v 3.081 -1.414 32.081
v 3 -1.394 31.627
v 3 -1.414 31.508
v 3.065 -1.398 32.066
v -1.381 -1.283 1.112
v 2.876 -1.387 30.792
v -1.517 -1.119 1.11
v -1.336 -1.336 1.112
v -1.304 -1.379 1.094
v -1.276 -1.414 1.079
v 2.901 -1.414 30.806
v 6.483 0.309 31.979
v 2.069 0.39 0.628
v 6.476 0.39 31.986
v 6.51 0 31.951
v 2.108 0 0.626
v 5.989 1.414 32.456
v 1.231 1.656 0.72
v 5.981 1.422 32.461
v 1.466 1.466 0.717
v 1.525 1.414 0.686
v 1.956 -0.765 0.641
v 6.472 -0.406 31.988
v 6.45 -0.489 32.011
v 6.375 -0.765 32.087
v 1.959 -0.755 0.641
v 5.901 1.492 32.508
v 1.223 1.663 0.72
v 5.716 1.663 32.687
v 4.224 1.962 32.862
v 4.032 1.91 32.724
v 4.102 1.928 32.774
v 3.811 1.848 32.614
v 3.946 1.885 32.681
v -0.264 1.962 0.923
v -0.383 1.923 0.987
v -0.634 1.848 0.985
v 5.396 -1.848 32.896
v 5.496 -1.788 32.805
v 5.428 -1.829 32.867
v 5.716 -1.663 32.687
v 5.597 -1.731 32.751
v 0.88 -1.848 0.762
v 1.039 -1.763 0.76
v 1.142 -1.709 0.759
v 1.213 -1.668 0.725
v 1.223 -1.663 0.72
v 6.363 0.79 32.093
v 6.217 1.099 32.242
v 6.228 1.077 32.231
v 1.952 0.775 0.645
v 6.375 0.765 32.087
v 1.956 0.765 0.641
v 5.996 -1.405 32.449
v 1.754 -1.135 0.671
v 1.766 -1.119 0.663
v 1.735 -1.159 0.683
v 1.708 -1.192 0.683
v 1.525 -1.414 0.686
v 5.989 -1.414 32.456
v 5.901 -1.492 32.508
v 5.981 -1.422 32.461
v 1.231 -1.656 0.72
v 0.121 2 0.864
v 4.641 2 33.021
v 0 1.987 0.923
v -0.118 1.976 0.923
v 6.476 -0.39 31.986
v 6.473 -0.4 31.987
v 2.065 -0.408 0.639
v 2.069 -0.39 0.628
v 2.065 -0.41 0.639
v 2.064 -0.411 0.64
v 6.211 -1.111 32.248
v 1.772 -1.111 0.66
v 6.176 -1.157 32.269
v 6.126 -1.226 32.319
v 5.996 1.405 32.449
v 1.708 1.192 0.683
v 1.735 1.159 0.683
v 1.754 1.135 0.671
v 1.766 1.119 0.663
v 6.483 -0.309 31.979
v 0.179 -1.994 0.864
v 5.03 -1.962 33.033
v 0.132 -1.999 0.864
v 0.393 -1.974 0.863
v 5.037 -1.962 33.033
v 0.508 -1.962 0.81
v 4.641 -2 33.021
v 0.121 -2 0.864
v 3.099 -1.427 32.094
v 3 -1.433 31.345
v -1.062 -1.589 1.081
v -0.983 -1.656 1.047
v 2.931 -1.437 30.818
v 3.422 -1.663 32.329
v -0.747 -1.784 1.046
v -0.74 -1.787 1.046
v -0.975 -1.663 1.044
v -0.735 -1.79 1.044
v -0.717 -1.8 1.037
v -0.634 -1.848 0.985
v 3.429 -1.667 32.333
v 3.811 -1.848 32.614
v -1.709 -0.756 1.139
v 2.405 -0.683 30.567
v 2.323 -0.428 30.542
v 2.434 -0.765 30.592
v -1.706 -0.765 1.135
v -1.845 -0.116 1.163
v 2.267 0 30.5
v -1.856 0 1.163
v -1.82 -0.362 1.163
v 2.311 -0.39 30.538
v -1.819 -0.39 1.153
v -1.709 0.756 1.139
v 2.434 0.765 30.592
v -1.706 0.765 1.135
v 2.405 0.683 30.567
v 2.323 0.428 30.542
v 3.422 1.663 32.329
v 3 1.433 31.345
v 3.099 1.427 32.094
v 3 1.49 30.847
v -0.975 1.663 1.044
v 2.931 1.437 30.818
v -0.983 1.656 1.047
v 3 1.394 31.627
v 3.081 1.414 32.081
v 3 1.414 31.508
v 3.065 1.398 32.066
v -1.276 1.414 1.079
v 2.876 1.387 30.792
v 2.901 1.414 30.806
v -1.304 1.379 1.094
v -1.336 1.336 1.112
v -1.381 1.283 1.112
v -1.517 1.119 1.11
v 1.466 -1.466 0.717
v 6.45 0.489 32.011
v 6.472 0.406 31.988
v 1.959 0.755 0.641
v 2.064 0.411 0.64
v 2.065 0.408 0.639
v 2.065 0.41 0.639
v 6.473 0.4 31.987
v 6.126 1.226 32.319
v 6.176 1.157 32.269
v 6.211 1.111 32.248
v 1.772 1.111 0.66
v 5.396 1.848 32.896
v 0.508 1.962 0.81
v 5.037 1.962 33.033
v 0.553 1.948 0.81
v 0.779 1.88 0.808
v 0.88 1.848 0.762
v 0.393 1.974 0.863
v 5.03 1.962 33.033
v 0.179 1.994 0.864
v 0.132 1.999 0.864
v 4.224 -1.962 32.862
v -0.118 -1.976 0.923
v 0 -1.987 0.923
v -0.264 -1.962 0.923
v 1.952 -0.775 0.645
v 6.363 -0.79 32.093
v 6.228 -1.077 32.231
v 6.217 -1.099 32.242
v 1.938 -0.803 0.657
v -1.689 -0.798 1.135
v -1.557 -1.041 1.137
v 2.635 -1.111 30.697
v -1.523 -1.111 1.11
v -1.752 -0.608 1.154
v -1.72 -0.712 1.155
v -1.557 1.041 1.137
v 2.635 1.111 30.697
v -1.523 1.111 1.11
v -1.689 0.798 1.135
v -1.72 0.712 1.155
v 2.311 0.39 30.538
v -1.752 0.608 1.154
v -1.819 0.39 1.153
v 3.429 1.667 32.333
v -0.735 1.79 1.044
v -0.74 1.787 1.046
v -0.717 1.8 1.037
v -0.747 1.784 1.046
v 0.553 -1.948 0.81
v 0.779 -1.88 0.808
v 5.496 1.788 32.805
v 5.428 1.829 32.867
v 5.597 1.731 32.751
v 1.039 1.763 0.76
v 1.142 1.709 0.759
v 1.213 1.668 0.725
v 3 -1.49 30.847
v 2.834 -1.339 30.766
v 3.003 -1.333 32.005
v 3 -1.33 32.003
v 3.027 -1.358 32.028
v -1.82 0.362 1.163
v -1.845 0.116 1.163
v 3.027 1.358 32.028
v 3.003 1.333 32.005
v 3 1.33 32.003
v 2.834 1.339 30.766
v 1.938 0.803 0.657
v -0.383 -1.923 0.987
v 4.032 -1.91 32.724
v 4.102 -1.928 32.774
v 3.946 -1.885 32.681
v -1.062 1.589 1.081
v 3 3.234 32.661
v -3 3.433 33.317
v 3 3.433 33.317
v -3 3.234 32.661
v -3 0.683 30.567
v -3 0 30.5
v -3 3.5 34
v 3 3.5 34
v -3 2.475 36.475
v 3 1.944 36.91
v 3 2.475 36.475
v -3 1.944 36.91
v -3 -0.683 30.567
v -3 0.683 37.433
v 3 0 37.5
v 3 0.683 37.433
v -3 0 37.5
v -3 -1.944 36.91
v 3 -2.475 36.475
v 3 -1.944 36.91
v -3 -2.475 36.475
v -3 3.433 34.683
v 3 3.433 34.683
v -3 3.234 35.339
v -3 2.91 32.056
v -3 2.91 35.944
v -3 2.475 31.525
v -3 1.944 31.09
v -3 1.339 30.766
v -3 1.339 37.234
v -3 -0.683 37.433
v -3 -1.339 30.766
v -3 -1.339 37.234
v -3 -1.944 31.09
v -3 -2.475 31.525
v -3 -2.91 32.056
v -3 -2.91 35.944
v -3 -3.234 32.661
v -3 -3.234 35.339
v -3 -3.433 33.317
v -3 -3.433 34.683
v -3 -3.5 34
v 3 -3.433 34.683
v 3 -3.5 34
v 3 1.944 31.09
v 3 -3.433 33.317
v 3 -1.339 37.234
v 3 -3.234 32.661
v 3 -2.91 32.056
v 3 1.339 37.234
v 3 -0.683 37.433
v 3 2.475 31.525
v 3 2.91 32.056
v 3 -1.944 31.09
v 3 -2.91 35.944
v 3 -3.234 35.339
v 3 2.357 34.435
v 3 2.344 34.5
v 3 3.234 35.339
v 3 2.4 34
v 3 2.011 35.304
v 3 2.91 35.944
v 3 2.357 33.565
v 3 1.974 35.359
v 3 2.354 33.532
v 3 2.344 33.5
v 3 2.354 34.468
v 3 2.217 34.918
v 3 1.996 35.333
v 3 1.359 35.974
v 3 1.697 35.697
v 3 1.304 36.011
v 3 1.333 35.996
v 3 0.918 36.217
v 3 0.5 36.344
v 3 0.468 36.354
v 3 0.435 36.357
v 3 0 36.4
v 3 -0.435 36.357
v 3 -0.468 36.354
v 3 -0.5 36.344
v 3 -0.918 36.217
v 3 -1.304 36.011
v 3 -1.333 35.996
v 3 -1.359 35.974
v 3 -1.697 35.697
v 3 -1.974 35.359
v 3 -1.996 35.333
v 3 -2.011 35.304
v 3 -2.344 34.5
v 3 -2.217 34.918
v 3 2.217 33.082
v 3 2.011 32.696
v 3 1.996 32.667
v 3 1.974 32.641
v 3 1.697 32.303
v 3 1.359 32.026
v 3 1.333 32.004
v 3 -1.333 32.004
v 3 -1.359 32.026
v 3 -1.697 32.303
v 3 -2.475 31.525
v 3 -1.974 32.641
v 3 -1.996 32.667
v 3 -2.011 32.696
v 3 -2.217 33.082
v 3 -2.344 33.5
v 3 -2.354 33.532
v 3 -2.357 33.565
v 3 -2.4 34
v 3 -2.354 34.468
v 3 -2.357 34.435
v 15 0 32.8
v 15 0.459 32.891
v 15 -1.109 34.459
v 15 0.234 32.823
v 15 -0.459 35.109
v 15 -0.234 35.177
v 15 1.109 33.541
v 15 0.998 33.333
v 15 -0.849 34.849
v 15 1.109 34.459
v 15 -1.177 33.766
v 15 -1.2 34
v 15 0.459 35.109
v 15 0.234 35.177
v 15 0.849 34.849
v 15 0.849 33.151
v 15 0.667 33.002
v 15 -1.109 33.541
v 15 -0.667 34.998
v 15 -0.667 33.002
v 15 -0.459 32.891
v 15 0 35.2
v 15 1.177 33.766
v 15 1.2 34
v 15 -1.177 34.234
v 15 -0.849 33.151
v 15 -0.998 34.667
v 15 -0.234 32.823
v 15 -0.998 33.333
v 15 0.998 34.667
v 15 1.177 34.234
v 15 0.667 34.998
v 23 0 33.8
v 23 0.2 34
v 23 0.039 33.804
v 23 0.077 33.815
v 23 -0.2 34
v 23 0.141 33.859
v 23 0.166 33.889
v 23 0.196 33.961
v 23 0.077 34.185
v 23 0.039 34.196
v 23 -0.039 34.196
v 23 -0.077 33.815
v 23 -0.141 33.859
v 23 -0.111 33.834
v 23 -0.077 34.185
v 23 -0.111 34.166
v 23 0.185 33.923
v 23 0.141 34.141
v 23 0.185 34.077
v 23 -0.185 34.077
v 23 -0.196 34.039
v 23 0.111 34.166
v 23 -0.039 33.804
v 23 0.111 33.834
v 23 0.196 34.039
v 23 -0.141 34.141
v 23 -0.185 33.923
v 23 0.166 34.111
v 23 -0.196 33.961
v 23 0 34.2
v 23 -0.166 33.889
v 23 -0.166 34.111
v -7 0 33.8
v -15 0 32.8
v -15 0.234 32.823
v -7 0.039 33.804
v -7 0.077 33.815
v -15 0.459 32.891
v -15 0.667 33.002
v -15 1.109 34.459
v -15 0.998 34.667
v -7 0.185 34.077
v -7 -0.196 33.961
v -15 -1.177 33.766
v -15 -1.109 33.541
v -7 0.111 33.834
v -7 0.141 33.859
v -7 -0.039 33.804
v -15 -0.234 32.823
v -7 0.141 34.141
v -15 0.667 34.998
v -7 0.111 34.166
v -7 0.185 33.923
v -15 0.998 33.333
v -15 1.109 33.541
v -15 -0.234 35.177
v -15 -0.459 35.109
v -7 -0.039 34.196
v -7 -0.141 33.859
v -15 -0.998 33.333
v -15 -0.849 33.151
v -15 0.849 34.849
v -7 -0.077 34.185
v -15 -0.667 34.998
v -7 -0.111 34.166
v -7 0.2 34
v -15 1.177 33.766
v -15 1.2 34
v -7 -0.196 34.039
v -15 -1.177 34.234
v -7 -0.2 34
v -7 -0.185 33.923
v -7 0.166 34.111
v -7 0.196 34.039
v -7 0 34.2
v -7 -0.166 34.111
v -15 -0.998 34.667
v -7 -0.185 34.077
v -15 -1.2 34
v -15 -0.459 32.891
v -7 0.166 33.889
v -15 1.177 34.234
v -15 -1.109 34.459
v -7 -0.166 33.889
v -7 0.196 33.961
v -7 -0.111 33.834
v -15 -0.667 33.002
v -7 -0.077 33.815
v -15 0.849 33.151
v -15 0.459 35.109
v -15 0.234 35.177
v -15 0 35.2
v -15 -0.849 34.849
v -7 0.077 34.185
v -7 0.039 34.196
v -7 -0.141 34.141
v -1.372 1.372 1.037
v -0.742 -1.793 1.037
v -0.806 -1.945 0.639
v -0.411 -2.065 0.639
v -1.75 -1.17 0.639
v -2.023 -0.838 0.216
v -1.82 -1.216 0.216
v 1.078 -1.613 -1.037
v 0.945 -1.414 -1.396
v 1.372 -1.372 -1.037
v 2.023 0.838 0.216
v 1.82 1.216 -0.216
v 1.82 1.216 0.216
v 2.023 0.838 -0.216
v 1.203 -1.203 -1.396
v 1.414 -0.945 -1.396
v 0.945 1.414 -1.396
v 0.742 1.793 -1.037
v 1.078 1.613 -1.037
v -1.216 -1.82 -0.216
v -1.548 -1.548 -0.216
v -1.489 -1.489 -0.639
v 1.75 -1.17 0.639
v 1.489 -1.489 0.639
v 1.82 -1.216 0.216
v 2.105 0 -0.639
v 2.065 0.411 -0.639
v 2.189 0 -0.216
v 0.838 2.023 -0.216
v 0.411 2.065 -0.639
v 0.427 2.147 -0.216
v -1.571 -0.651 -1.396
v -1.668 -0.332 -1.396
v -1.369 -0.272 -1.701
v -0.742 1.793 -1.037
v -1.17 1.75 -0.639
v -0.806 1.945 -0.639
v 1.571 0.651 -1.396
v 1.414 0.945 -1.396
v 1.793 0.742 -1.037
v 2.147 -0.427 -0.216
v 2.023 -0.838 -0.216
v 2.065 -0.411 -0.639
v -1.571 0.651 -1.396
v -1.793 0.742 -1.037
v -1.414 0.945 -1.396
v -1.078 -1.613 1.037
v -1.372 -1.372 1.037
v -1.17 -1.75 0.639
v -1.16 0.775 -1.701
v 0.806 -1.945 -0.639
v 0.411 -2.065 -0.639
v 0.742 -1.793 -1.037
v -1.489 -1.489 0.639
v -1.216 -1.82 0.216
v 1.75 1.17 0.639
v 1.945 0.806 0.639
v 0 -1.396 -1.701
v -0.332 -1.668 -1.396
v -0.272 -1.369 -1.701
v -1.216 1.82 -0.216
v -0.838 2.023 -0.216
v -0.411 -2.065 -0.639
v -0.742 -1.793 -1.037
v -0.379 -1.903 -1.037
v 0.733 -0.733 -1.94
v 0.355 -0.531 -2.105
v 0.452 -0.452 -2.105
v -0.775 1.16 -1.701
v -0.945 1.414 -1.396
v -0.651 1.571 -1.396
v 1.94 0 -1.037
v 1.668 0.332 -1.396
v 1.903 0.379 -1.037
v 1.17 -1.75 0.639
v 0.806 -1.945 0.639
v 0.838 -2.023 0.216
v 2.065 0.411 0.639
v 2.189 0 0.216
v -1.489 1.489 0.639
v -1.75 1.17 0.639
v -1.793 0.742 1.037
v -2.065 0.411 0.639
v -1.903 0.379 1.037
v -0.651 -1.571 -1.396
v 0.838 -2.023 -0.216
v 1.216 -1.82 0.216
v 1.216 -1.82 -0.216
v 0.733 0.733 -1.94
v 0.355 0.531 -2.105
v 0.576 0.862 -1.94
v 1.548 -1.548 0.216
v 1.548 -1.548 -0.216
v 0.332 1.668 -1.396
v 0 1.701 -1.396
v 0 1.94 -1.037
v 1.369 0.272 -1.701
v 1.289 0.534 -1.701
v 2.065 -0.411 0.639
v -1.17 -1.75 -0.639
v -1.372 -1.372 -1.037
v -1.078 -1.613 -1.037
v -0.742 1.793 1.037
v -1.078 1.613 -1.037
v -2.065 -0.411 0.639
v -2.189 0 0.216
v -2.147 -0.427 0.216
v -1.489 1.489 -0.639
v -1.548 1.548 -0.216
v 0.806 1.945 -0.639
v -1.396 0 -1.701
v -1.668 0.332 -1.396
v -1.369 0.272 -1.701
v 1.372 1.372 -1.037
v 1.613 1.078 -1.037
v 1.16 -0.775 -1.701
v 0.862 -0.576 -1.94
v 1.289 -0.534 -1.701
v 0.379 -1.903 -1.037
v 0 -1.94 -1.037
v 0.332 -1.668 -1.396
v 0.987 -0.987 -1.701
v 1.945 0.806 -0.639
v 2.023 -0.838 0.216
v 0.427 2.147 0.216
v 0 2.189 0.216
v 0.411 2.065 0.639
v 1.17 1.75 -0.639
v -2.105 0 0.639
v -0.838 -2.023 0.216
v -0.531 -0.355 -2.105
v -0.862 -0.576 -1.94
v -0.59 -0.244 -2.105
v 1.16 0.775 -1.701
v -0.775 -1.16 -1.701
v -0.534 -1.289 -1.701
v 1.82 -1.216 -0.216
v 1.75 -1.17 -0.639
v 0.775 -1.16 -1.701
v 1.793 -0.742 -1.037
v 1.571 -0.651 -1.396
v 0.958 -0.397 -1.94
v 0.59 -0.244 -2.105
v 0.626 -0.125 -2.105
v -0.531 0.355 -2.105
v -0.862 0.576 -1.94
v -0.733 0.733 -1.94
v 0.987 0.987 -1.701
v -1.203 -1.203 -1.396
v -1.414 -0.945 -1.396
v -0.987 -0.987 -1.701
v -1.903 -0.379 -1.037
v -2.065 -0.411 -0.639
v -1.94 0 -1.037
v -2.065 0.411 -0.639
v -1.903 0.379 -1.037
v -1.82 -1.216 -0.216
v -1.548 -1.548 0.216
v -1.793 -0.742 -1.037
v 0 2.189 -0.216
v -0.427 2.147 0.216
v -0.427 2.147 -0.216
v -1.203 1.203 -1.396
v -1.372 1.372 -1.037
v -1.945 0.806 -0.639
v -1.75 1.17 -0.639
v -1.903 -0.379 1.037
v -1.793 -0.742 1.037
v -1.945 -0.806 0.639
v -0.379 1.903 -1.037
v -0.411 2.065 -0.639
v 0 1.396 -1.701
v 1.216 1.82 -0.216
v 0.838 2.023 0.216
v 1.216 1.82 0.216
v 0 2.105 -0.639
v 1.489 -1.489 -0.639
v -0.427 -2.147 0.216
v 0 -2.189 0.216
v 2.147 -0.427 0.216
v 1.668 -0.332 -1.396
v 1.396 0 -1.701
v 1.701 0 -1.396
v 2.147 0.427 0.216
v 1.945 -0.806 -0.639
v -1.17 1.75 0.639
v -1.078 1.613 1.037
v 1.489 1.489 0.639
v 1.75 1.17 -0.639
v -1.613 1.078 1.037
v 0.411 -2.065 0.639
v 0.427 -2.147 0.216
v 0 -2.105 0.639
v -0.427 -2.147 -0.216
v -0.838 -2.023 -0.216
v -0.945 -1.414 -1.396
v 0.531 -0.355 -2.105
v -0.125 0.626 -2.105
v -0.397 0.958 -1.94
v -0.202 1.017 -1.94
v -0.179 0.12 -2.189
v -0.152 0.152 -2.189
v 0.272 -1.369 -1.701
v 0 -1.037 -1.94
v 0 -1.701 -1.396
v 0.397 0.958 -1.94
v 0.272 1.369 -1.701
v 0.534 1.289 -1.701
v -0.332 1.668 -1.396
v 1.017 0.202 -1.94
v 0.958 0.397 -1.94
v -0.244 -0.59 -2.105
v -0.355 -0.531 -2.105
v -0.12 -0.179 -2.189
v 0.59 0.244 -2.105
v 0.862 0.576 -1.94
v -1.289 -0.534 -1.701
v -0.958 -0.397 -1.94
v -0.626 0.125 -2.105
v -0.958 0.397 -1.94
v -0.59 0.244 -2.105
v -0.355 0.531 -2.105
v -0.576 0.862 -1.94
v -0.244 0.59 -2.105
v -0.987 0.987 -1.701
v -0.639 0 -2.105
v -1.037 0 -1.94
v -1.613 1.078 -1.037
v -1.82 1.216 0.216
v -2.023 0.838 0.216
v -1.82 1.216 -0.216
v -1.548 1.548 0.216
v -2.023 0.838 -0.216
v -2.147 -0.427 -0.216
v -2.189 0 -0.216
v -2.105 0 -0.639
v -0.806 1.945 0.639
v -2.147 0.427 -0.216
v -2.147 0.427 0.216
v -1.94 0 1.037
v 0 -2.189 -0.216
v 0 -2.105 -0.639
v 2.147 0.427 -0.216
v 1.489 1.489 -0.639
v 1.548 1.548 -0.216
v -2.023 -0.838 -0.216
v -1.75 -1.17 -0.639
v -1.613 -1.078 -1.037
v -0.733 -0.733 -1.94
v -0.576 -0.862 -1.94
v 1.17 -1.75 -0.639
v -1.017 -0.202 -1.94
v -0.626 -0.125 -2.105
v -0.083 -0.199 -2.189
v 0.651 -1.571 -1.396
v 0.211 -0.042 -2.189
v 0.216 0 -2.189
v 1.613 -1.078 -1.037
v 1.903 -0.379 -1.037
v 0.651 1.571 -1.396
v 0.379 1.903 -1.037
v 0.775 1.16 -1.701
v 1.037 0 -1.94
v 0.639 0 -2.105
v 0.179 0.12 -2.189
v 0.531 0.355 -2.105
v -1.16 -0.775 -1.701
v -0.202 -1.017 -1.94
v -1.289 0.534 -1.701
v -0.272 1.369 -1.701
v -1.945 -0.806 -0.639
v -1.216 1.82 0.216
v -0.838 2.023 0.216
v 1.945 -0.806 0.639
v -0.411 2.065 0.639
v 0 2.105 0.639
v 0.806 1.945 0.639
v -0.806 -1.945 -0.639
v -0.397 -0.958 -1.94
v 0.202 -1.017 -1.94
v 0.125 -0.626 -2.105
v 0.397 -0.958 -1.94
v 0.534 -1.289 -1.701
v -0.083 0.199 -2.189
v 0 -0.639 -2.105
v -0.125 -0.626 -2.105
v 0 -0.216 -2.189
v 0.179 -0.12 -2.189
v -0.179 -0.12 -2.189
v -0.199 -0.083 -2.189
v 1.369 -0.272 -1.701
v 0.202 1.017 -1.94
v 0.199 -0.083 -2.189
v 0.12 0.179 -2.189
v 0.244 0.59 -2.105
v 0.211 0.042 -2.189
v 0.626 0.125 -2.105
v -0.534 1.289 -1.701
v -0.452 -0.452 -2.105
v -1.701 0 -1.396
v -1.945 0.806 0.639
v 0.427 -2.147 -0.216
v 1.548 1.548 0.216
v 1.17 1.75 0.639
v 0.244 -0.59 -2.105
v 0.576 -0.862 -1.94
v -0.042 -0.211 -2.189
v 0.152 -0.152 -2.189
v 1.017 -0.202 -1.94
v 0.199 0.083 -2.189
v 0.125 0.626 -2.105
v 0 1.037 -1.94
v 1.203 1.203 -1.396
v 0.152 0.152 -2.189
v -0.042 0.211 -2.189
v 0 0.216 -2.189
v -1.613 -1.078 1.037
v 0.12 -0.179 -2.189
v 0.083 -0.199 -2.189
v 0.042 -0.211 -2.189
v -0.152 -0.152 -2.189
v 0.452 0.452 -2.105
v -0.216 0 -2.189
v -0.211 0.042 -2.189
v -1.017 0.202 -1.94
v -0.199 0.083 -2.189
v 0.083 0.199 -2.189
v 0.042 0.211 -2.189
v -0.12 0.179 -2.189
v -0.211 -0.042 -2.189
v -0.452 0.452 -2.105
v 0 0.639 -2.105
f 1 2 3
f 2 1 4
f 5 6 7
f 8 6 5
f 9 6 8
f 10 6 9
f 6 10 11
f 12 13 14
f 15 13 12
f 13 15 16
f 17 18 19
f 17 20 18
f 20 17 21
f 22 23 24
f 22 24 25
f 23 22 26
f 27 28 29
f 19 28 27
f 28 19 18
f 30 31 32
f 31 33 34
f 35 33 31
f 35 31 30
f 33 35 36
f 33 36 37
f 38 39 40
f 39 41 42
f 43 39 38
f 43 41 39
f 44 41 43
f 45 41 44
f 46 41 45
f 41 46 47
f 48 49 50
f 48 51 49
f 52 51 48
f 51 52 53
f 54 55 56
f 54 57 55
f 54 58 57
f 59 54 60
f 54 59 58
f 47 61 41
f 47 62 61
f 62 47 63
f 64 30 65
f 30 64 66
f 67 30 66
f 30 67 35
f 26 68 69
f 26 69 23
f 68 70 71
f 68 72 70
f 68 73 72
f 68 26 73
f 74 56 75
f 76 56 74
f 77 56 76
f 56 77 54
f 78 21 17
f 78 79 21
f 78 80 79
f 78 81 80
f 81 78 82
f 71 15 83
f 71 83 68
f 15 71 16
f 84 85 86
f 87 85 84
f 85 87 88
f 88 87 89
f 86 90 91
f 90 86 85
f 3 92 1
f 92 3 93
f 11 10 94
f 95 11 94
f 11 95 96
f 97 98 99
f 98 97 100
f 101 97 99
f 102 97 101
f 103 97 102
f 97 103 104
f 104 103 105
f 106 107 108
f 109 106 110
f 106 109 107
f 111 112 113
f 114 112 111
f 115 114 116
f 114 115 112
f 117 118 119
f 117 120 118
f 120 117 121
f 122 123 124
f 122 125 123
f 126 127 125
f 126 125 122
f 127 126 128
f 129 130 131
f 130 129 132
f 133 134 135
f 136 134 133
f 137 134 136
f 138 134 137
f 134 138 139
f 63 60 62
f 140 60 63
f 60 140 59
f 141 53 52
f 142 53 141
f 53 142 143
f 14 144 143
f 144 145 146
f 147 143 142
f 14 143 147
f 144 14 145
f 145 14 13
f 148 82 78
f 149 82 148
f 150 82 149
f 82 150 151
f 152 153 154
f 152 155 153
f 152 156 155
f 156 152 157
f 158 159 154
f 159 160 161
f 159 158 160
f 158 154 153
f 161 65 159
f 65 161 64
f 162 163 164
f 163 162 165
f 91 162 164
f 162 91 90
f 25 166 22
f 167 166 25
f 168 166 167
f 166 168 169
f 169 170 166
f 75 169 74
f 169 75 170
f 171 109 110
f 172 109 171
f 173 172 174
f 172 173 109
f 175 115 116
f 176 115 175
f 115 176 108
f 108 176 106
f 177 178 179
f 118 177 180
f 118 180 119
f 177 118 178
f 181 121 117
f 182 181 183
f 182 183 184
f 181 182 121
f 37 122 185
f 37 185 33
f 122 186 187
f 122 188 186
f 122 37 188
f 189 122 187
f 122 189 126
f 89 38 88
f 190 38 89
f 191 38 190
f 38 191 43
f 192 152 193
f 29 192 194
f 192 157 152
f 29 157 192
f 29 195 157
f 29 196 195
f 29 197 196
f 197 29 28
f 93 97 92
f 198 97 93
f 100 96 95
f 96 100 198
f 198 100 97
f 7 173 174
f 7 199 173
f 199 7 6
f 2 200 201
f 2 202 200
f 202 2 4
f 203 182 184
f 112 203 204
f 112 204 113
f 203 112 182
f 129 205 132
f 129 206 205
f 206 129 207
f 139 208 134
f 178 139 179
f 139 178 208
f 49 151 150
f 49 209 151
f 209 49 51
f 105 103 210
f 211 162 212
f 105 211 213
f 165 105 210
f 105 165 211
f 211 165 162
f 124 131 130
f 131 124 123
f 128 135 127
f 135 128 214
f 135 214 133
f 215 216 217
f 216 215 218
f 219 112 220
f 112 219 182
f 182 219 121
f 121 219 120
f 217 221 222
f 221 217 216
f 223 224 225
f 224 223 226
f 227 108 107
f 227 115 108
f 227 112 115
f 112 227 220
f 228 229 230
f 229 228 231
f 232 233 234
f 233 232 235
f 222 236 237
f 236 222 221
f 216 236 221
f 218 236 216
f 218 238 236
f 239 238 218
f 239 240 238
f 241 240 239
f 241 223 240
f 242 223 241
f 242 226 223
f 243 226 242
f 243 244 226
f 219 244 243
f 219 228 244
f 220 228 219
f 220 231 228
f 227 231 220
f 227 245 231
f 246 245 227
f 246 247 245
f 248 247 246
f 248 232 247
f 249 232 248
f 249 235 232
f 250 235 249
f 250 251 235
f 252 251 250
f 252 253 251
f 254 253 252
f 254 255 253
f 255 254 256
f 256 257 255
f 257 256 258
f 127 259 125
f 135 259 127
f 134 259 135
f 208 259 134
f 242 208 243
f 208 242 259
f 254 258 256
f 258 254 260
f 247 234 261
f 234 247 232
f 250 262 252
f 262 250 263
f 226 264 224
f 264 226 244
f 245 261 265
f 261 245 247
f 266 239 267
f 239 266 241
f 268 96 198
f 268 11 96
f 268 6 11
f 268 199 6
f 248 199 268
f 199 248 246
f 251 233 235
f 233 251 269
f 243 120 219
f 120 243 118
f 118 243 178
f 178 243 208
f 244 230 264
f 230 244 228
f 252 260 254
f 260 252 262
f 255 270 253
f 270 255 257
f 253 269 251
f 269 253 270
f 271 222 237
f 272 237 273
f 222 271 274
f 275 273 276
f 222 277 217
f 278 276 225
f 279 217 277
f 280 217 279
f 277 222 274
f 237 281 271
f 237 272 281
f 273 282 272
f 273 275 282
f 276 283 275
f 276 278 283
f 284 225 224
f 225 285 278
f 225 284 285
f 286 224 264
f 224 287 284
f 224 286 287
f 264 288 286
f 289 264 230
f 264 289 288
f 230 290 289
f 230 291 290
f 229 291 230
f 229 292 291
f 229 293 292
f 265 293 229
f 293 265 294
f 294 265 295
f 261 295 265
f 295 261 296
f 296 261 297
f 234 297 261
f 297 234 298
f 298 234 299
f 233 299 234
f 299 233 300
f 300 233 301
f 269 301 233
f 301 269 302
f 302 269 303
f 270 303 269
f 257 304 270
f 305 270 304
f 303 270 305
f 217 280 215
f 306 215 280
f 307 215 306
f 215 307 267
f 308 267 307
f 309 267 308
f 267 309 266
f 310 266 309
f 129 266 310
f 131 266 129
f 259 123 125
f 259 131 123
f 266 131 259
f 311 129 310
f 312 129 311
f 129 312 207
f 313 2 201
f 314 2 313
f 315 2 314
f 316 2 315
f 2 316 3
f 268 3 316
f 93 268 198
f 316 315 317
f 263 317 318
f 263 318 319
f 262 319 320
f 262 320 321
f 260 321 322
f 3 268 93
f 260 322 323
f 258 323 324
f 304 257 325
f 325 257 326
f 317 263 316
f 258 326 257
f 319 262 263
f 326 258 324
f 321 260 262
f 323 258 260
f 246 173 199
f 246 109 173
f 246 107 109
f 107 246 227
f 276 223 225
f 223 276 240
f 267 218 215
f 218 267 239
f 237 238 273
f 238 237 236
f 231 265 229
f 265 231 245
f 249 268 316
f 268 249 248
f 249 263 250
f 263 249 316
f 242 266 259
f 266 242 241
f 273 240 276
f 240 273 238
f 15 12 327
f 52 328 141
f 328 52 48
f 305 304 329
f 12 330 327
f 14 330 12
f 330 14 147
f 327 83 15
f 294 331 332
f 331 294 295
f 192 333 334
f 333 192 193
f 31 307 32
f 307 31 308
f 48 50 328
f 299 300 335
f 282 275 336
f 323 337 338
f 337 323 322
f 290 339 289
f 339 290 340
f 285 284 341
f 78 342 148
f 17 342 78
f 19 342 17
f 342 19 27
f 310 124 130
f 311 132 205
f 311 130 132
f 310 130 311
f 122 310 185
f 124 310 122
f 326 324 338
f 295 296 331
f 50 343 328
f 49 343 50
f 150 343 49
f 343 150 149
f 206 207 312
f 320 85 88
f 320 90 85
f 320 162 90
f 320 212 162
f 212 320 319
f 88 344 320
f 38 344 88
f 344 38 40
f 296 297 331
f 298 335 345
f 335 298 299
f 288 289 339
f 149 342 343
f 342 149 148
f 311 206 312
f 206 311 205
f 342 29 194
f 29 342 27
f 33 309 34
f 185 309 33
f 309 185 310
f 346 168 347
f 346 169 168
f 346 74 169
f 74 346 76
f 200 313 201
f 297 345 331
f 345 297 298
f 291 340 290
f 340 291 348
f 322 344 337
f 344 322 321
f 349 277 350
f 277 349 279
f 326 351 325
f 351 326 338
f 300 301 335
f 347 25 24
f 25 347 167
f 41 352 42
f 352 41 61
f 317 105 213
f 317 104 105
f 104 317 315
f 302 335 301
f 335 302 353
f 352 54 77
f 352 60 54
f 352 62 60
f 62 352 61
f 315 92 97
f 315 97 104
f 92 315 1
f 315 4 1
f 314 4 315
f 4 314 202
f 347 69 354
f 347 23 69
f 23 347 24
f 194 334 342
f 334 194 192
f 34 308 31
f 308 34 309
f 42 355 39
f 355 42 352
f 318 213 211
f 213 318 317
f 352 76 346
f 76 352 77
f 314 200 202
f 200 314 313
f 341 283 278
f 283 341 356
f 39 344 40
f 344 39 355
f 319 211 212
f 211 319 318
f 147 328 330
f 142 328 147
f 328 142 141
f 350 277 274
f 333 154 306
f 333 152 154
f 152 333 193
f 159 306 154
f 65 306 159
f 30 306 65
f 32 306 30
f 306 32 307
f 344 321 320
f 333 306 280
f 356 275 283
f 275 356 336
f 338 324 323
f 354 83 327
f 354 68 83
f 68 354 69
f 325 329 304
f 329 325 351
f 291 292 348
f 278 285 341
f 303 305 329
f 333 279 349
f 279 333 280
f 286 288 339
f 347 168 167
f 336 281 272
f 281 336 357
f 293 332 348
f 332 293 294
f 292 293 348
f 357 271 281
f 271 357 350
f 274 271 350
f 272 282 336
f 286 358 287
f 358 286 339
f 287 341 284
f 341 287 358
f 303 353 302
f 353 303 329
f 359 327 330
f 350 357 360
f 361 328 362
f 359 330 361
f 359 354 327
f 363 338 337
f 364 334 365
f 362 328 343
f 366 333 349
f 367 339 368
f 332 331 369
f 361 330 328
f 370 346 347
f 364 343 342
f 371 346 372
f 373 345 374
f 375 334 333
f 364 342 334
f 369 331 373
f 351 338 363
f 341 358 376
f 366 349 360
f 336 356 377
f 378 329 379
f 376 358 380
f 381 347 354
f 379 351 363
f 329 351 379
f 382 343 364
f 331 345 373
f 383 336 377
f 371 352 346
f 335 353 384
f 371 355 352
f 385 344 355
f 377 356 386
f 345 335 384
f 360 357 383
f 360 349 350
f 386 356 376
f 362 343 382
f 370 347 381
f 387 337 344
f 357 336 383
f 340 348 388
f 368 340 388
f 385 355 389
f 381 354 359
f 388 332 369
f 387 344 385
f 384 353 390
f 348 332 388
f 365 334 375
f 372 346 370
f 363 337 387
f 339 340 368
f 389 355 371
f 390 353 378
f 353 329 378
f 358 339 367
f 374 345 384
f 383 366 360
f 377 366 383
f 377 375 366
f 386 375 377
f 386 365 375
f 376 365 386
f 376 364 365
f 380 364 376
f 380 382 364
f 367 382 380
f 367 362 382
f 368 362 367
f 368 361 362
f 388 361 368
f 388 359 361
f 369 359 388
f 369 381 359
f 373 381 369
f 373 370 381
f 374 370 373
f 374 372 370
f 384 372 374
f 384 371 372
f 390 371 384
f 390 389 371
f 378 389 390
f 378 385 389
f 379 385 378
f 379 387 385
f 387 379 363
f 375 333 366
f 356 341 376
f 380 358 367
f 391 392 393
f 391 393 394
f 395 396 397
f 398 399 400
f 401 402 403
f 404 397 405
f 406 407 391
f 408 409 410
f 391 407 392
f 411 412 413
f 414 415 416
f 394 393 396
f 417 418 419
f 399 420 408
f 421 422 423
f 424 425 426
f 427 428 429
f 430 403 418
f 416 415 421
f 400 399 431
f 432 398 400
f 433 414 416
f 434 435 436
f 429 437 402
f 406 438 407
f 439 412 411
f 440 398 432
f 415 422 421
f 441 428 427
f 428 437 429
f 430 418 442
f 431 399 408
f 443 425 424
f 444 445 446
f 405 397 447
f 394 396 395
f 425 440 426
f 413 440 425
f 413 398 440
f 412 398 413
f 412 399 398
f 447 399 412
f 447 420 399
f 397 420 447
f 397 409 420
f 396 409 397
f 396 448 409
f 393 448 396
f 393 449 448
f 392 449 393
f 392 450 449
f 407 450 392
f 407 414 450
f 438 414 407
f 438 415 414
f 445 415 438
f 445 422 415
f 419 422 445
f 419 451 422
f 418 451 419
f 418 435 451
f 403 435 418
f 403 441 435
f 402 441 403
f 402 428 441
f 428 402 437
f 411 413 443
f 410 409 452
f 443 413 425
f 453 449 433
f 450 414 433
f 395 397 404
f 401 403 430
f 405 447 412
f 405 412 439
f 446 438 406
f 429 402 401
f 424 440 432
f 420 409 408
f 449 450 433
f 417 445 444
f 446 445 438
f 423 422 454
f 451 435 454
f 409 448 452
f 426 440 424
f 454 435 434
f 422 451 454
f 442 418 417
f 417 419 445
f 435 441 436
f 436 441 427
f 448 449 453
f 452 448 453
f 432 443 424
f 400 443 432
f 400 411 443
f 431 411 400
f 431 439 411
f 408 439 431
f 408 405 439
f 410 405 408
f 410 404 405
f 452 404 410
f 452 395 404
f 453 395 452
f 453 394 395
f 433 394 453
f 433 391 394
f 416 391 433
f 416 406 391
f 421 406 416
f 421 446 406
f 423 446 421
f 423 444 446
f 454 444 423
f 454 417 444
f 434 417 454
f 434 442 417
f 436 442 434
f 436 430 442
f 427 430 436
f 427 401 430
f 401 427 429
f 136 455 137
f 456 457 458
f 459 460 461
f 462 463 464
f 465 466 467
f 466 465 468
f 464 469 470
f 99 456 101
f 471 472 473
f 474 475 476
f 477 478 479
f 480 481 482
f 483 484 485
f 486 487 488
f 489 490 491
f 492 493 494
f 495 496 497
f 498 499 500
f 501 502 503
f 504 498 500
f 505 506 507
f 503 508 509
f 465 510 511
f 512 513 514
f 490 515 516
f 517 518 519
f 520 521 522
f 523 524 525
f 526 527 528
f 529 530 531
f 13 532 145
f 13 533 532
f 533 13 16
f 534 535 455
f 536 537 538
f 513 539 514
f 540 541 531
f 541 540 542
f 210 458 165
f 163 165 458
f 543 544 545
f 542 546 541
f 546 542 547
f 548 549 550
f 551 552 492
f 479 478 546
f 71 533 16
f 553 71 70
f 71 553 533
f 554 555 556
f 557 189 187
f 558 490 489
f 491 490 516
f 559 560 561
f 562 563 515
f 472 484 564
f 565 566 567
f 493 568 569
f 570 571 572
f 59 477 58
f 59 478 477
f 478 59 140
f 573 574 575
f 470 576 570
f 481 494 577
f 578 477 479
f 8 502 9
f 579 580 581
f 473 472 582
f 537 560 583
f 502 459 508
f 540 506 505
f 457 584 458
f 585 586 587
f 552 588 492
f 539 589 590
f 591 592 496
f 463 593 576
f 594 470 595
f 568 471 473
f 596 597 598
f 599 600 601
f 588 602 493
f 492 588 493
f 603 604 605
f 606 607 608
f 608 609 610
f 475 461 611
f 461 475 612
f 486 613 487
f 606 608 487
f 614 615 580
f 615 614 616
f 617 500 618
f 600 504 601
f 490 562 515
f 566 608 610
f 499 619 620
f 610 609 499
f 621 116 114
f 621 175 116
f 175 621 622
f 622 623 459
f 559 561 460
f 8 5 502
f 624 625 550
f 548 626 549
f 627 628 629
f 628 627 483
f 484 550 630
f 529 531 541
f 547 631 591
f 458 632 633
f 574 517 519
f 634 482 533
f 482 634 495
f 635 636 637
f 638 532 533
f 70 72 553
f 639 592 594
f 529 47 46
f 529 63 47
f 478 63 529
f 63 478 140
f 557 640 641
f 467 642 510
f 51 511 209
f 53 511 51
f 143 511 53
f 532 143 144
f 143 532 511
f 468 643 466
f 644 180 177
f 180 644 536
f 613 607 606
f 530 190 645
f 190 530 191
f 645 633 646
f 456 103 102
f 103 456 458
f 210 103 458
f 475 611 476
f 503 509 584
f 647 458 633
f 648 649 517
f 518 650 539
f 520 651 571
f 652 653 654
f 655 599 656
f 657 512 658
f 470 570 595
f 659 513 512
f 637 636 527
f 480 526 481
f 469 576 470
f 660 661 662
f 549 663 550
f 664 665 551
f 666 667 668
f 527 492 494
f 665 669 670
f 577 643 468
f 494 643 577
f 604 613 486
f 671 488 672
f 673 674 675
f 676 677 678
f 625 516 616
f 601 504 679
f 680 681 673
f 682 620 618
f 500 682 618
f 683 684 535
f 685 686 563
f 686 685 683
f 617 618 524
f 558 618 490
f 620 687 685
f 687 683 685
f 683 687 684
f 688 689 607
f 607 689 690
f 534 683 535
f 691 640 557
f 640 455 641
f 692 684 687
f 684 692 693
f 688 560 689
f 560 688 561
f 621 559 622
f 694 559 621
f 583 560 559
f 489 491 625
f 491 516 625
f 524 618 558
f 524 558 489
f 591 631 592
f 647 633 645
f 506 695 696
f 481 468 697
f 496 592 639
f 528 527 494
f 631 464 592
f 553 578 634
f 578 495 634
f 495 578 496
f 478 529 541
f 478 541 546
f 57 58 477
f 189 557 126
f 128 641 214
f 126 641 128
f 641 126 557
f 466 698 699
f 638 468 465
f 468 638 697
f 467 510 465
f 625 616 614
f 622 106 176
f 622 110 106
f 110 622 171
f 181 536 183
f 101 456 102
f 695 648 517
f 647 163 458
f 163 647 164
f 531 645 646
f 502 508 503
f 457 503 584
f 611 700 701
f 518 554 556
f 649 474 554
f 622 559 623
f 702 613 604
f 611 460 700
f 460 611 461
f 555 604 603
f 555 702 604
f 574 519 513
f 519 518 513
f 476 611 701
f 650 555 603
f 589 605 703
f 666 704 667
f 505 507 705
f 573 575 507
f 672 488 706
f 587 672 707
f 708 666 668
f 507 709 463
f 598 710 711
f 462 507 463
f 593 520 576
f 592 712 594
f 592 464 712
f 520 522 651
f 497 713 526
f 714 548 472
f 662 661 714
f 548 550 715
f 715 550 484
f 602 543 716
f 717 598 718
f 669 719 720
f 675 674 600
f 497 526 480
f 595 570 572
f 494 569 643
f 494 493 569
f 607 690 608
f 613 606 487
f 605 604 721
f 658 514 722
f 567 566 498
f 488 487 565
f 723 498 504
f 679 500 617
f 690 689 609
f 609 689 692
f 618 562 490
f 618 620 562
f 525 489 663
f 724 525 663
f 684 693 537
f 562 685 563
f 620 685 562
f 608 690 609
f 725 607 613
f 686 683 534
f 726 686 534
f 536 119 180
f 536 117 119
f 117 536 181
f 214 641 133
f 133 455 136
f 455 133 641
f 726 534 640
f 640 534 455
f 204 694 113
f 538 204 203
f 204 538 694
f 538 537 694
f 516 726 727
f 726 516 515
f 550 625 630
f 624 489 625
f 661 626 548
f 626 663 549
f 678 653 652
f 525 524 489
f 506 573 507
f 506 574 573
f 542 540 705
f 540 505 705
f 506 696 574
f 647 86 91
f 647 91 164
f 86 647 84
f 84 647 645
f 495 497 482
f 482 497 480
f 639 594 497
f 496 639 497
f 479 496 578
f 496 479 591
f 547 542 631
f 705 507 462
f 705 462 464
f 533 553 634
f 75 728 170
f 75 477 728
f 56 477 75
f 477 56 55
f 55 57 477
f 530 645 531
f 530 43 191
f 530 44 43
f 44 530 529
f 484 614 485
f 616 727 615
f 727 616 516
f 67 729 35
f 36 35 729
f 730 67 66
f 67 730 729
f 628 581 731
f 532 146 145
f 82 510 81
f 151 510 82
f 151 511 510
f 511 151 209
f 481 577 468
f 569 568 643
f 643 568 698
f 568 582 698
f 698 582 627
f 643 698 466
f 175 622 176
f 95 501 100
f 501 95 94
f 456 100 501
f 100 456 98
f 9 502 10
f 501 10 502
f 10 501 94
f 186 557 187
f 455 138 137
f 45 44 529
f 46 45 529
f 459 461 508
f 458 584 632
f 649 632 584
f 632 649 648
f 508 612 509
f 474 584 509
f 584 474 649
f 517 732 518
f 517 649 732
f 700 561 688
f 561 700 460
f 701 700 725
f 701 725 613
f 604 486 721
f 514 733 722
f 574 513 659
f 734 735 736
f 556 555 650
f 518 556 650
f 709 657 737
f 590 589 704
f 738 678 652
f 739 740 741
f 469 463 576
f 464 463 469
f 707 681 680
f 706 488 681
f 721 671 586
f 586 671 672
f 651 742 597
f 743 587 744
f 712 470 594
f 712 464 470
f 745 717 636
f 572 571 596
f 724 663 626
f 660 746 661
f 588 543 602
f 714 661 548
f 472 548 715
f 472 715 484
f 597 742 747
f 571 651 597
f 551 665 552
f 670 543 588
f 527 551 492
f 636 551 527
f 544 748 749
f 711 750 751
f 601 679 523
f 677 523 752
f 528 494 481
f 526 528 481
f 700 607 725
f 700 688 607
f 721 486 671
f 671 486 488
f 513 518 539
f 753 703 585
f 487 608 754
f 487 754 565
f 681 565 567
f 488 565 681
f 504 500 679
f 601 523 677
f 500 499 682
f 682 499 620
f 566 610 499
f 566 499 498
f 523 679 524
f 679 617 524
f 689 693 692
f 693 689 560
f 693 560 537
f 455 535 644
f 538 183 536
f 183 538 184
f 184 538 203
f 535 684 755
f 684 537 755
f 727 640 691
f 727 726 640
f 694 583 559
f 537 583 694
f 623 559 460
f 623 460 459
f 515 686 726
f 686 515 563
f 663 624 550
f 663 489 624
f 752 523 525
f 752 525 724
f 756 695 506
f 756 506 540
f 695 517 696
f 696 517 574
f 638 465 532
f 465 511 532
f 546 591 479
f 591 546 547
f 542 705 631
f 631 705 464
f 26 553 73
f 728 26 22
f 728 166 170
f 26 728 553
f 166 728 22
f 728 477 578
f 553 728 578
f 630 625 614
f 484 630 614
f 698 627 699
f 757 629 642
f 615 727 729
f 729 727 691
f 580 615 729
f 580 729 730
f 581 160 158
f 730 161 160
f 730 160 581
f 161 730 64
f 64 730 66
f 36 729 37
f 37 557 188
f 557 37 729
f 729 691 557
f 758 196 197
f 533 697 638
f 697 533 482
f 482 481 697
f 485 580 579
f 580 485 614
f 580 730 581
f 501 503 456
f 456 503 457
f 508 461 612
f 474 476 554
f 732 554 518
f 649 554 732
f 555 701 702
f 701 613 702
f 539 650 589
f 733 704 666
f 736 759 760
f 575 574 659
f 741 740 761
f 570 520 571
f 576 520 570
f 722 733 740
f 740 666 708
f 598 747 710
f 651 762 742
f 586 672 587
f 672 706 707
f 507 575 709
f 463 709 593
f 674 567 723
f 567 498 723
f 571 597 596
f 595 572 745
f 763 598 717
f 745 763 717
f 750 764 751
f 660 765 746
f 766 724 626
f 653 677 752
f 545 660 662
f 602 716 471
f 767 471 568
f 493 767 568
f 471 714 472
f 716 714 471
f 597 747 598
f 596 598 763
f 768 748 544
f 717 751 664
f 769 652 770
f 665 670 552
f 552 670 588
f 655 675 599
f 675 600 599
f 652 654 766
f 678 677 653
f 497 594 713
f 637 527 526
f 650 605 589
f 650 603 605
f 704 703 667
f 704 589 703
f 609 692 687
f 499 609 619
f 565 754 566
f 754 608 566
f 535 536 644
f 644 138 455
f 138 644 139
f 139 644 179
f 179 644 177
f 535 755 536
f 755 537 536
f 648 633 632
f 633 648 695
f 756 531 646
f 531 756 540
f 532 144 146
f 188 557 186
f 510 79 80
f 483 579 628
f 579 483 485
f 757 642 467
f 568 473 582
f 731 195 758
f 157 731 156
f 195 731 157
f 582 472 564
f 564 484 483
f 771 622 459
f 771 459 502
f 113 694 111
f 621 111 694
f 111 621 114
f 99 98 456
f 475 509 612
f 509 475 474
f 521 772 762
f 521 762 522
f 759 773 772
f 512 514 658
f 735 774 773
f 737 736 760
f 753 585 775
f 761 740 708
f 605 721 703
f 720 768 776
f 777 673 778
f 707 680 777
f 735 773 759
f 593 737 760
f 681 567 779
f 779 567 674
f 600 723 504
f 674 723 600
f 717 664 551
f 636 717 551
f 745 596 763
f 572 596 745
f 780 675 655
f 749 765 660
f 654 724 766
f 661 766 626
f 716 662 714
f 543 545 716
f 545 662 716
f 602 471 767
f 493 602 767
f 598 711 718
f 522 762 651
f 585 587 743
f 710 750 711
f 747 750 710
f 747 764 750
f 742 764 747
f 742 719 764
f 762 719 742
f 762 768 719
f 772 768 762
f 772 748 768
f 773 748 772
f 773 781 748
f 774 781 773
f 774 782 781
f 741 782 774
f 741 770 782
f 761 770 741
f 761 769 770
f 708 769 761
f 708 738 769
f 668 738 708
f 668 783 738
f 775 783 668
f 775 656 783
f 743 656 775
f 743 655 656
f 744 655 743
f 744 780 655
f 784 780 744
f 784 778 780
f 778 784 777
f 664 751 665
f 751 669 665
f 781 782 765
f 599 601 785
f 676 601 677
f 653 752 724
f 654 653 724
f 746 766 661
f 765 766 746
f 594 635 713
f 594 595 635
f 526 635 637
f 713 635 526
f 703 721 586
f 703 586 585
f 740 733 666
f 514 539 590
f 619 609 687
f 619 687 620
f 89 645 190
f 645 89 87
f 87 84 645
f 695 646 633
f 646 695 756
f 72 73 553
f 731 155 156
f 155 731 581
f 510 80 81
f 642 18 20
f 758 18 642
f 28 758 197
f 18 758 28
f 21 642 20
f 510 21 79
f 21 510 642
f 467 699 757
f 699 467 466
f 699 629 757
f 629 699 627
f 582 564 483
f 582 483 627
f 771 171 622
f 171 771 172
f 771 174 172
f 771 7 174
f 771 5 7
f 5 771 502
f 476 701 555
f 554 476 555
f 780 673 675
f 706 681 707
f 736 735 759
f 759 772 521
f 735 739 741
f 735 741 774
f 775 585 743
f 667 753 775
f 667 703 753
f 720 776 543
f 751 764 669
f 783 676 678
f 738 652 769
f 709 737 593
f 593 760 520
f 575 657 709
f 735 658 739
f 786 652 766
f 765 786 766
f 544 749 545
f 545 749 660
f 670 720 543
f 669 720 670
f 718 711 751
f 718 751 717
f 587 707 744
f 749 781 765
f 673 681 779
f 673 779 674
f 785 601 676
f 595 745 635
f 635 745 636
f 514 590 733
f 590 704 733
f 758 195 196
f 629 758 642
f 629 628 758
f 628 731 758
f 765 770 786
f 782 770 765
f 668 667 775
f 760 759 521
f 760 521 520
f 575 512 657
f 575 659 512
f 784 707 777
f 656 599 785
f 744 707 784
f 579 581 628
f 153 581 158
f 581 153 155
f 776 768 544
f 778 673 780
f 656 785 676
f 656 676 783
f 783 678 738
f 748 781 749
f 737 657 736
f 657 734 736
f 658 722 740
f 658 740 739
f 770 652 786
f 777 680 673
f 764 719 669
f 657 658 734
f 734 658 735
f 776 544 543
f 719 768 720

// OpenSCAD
$fn = 32;

// Low-poly mining pickaxe: wooden handle + double-ended steel pick head.
// Single connected manifold via union of primitives.

union() {
    // Handle (slightly tilted for a natural grip look)
    rotate([0, 8, 0])
        cylinder(h = 34, r = 2, center = false);

    // Head hub where the pick crosses the handle
    translate([0, 0, 34])
        rotate([0, 90, 0])
            cylinder(h = 6, r = 3.5, center = true);

    // Right pick arm (tapering outward)
    translate([1, 0, 34])
        rotate([0, 90, 0])
            cylinder(h = 14, r1 = 2.6, r2 = 1.2, center = false);

    // Right pick tip
    translate([15, 0, 34])
        rotate([0, 90, 0])
            cylinder(h = 8, r1 = 1.2, r2 = 0.2, center = false);

    // Left pick arm
    translate([-1, 0, 34])
        rotate([0, 90, 0])
            cylinder(h = 14, r1 = 2.6, r2 = 1.2, center = false);

    // Left pick tip
    translate([-15, 0, 34])
        rotate([0, 90, 0])
            cylinder(h = 8, r1 = 1.2, r2 = 0.2, center = false);

    // Handle butt cap
    translate([0, 0, 0])
        sphere(r = 2.2);
}
